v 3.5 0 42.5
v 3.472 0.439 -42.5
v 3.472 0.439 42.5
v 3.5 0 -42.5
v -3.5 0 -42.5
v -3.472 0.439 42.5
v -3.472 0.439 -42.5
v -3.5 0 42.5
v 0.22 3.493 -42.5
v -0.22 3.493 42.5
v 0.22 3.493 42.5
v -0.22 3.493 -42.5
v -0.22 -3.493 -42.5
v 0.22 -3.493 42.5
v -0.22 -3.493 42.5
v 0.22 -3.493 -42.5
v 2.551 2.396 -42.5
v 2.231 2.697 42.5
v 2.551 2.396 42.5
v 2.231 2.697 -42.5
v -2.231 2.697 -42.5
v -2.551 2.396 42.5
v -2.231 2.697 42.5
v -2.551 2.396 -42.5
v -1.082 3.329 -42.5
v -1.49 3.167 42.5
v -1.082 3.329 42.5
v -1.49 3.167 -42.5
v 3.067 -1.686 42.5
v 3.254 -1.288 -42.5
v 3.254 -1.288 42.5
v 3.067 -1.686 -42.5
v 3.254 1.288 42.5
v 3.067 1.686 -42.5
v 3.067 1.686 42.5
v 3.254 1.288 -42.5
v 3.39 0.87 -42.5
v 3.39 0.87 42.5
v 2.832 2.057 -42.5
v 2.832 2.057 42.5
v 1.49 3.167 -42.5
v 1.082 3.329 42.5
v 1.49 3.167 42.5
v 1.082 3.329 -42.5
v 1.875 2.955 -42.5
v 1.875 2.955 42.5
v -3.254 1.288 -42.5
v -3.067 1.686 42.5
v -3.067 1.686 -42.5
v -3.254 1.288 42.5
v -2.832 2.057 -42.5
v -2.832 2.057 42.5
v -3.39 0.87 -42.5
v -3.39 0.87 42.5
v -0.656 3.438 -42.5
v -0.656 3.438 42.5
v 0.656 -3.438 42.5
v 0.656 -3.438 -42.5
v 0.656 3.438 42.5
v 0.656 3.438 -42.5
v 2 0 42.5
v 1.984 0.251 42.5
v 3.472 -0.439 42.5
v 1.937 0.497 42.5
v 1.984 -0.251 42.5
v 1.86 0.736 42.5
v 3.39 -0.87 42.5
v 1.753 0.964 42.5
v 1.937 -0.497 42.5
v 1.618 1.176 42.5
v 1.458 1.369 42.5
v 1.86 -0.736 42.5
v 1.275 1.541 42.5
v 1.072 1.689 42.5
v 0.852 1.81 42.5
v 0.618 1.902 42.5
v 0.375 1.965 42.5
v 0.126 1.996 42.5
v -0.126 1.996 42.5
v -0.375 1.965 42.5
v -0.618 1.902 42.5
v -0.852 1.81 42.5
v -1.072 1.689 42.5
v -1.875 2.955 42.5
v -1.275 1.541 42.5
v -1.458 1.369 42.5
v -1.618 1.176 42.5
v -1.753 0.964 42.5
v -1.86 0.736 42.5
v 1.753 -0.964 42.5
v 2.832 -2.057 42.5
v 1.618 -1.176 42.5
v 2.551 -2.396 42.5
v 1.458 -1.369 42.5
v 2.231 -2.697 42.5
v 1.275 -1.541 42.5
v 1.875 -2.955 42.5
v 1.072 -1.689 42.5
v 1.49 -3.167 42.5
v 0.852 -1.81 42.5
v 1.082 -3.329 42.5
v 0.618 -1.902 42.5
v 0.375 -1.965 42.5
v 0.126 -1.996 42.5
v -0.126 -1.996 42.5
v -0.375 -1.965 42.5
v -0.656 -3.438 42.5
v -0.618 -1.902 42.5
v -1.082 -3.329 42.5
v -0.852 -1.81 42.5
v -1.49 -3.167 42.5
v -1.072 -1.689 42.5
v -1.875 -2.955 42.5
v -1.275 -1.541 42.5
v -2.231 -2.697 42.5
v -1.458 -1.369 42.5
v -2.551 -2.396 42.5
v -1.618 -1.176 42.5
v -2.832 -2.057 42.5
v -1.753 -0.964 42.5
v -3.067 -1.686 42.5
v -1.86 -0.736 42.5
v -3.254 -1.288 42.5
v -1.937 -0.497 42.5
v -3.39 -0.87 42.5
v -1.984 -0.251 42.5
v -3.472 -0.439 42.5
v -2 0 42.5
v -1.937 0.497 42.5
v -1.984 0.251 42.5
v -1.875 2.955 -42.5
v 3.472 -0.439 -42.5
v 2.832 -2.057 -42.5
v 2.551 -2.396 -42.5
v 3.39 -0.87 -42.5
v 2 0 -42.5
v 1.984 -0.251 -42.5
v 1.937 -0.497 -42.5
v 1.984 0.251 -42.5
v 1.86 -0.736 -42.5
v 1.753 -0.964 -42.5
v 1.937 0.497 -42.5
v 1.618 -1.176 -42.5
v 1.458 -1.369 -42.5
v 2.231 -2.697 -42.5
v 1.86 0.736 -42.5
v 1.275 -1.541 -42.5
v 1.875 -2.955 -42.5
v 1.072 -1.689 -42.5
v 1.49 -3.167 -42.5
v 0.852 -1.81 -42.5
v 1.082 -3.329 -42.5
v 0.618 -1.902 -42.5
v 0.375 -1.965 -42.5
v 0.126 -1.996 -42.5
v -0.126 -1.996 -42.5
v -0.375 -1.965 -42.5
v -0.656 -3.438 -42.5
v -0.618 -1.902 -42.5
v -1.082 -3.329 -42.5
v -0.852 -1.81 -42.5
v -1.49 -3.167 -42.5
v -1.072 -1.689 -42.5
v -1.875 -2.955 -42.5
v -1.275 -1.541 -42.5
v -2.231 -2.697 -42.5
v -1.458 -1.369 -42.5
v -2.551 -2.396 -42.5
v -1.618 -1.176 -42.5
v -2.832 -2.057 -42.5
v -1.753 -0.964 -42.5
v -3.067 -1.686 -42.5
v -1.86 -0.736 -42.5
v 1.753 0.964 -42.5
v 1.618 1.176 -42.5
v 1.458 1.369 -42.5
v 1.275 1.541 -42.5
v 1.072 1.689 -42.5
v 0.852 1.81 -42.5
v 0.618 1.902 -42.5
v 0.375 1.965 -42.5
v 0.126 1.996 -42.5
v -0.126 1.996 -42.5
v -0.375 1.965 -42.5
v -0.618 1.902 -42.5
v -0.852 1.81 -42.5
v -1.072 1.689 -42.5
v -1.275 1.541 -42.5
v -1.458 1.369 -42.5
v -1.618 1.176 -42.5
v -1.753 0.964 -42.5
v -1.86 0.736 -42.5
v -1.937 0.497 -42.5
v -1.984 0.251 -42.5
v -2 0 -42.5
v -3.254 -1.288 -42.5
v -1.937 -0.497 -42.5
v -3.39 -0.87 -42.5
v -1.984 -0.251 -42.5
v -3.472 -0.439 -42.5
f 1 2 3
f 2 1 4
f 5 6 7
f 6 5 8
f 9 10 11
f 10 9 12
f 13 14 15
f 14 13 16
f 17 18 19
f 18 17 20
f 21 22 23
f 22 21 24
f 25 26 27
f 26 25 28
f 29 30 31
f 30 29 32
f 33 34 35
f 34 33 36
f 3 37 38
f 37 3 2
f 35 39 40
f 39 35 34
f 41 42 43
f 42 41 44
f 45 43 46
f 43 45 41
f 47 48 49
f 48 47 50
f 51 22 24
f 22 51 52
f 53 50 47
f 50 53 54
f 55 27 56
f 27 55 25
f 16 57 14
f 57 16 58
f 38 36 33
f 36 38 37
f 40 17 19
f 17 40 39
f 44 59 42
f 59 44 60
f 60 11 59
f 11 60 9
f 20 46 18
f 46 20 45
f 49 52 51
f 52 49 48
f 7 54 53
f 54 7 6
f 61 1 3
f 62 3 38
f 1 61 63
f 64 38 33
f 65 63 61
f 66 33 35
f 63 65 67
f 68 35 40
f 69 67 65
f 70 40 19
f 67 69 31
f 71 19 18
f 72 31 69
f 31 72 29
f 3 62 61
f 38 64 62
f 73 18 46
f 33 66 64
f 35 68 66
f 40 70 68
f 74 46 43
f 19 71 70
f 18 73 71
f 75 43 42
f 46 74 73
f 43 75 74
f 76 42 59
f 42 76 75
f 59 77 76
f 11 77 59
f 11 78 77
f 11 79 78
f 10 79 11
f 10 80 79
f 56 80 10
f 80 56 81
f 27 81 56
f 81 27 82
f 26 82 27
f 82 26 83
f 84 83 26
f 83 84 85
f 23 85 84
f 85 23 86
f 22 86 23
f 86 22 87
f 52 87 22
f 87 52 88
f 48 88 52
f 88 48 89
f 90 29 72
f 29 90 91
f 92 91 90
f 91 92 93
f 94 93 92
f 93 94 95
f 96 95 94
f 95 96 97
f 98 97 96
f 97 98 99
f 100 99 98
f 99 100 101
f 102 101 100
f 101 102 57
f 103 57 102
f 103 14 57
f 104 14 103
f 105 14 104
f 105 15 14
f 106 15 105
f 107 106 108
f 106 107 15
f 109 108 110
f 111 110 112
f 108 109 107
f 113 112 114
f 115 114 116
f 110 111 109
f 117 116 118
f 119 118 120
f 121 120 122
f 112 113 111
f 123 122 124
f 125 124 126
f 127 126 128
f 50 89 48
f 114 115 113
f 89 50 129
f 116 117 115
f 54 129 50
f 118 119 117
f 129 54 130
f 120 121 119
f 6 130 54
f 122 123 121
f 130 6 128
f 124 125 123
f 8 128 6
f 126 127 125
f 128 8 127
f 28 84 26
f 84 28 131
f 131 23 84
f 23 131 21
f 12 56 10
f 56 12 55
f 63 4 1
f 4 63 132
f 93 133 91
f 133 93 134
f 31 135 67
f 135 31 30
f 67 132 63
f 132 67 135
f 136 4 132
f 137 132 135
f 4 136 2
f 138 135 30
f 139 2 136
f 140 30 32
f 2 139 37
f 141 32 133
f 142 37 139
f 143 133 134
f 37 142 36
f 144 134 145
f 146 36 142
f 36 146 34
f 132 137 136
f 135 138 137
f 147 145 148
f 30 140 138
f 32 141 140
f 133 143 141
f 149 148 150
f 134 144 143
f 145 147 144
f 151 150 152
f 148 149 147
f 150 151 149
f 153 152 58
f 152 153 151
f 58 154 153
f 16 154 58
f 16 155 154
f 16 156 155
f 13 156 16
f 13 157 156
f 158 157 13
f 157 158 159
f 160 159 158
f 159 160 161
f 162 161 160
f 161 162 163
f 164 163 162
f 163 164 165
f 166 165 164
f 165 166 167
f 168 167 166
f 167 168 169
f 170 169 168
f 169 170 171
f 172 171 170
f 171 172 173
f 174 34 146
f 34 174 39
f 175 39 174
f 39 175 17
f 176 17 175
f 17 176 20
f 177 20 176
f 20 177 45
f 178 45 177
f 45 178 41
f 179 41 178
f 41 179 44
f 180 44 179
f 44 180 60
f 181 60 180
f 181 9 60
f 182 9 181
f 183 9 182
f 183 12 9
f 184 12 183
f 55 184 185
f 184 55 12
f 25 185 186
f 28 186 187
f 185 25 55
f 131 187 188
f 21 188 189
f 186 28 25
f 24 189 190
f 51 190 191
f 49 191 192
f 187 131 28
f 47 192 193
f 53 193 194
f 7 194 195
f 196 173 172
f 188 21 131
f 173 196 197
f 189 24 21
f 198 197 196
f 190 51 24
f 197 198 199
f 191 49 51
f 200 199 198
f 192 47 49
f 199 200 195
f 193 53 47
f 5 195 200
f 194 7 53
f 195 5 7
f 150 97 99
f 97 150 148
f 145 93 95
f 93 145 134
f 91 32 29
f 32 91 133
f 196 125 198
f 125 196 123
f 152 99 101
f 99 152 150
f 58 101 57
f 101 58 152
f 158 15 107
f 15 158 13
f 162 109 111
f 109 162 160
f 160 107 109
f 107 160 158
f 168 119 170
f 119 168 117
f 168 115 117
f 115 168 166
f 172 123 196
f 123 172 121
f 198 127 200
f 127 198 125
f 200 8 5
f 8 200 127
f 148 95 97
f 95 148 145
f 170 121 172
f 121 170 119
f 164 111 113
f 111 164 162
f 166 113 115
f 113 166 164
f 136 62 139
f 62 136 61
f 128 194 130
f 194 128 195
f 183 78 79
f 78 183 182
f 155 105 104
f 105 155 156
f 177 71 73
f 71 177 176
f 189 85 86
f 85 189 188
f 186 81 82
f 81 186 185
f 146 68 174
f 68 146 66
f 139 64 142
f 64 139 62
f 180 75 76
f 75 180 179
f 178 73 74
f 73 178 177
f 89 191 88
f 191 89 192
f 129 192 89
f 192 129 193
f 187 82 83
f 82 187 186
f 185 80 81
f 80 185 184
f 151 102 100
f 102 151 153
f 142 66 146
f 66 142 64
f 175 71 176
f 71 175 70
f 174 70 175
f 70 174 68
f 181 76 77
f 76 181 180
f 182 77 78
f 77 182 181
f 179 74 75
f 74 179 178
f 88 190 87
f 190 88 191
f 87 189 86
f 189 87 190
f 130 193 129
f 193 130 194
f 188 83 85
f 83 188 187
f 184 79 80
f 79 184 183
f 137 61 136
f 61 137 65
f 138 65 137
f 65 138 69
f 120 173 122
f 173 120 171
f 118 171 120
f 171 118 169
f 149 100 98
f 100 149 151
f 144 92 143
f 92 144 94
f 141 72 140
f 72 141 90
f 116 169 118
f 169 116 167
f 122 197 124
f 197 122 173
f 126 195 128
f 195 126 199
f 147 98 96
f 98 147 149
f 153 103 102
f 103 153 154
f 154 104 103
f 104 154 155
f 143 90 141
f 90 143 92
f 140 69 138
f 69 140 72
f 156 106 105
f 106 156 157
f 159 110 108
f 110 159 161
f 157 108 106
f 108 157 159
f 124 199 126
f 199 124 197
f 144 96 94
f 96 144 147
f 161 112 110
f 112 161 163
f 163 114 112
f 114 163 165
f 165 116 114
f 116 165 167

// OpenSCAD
$fn = 50;


difference() {
	union() {
		translate(v = [0, 0, -42.5000000000]) {
			cylinder(h = 85, r = 3.5000000000);
		}
	}
	union() {
		translate(v = [0, 0, -100.0000000000]) {
			cylinder(h = 200, r = 2.0000000000);
		}
	}
}
